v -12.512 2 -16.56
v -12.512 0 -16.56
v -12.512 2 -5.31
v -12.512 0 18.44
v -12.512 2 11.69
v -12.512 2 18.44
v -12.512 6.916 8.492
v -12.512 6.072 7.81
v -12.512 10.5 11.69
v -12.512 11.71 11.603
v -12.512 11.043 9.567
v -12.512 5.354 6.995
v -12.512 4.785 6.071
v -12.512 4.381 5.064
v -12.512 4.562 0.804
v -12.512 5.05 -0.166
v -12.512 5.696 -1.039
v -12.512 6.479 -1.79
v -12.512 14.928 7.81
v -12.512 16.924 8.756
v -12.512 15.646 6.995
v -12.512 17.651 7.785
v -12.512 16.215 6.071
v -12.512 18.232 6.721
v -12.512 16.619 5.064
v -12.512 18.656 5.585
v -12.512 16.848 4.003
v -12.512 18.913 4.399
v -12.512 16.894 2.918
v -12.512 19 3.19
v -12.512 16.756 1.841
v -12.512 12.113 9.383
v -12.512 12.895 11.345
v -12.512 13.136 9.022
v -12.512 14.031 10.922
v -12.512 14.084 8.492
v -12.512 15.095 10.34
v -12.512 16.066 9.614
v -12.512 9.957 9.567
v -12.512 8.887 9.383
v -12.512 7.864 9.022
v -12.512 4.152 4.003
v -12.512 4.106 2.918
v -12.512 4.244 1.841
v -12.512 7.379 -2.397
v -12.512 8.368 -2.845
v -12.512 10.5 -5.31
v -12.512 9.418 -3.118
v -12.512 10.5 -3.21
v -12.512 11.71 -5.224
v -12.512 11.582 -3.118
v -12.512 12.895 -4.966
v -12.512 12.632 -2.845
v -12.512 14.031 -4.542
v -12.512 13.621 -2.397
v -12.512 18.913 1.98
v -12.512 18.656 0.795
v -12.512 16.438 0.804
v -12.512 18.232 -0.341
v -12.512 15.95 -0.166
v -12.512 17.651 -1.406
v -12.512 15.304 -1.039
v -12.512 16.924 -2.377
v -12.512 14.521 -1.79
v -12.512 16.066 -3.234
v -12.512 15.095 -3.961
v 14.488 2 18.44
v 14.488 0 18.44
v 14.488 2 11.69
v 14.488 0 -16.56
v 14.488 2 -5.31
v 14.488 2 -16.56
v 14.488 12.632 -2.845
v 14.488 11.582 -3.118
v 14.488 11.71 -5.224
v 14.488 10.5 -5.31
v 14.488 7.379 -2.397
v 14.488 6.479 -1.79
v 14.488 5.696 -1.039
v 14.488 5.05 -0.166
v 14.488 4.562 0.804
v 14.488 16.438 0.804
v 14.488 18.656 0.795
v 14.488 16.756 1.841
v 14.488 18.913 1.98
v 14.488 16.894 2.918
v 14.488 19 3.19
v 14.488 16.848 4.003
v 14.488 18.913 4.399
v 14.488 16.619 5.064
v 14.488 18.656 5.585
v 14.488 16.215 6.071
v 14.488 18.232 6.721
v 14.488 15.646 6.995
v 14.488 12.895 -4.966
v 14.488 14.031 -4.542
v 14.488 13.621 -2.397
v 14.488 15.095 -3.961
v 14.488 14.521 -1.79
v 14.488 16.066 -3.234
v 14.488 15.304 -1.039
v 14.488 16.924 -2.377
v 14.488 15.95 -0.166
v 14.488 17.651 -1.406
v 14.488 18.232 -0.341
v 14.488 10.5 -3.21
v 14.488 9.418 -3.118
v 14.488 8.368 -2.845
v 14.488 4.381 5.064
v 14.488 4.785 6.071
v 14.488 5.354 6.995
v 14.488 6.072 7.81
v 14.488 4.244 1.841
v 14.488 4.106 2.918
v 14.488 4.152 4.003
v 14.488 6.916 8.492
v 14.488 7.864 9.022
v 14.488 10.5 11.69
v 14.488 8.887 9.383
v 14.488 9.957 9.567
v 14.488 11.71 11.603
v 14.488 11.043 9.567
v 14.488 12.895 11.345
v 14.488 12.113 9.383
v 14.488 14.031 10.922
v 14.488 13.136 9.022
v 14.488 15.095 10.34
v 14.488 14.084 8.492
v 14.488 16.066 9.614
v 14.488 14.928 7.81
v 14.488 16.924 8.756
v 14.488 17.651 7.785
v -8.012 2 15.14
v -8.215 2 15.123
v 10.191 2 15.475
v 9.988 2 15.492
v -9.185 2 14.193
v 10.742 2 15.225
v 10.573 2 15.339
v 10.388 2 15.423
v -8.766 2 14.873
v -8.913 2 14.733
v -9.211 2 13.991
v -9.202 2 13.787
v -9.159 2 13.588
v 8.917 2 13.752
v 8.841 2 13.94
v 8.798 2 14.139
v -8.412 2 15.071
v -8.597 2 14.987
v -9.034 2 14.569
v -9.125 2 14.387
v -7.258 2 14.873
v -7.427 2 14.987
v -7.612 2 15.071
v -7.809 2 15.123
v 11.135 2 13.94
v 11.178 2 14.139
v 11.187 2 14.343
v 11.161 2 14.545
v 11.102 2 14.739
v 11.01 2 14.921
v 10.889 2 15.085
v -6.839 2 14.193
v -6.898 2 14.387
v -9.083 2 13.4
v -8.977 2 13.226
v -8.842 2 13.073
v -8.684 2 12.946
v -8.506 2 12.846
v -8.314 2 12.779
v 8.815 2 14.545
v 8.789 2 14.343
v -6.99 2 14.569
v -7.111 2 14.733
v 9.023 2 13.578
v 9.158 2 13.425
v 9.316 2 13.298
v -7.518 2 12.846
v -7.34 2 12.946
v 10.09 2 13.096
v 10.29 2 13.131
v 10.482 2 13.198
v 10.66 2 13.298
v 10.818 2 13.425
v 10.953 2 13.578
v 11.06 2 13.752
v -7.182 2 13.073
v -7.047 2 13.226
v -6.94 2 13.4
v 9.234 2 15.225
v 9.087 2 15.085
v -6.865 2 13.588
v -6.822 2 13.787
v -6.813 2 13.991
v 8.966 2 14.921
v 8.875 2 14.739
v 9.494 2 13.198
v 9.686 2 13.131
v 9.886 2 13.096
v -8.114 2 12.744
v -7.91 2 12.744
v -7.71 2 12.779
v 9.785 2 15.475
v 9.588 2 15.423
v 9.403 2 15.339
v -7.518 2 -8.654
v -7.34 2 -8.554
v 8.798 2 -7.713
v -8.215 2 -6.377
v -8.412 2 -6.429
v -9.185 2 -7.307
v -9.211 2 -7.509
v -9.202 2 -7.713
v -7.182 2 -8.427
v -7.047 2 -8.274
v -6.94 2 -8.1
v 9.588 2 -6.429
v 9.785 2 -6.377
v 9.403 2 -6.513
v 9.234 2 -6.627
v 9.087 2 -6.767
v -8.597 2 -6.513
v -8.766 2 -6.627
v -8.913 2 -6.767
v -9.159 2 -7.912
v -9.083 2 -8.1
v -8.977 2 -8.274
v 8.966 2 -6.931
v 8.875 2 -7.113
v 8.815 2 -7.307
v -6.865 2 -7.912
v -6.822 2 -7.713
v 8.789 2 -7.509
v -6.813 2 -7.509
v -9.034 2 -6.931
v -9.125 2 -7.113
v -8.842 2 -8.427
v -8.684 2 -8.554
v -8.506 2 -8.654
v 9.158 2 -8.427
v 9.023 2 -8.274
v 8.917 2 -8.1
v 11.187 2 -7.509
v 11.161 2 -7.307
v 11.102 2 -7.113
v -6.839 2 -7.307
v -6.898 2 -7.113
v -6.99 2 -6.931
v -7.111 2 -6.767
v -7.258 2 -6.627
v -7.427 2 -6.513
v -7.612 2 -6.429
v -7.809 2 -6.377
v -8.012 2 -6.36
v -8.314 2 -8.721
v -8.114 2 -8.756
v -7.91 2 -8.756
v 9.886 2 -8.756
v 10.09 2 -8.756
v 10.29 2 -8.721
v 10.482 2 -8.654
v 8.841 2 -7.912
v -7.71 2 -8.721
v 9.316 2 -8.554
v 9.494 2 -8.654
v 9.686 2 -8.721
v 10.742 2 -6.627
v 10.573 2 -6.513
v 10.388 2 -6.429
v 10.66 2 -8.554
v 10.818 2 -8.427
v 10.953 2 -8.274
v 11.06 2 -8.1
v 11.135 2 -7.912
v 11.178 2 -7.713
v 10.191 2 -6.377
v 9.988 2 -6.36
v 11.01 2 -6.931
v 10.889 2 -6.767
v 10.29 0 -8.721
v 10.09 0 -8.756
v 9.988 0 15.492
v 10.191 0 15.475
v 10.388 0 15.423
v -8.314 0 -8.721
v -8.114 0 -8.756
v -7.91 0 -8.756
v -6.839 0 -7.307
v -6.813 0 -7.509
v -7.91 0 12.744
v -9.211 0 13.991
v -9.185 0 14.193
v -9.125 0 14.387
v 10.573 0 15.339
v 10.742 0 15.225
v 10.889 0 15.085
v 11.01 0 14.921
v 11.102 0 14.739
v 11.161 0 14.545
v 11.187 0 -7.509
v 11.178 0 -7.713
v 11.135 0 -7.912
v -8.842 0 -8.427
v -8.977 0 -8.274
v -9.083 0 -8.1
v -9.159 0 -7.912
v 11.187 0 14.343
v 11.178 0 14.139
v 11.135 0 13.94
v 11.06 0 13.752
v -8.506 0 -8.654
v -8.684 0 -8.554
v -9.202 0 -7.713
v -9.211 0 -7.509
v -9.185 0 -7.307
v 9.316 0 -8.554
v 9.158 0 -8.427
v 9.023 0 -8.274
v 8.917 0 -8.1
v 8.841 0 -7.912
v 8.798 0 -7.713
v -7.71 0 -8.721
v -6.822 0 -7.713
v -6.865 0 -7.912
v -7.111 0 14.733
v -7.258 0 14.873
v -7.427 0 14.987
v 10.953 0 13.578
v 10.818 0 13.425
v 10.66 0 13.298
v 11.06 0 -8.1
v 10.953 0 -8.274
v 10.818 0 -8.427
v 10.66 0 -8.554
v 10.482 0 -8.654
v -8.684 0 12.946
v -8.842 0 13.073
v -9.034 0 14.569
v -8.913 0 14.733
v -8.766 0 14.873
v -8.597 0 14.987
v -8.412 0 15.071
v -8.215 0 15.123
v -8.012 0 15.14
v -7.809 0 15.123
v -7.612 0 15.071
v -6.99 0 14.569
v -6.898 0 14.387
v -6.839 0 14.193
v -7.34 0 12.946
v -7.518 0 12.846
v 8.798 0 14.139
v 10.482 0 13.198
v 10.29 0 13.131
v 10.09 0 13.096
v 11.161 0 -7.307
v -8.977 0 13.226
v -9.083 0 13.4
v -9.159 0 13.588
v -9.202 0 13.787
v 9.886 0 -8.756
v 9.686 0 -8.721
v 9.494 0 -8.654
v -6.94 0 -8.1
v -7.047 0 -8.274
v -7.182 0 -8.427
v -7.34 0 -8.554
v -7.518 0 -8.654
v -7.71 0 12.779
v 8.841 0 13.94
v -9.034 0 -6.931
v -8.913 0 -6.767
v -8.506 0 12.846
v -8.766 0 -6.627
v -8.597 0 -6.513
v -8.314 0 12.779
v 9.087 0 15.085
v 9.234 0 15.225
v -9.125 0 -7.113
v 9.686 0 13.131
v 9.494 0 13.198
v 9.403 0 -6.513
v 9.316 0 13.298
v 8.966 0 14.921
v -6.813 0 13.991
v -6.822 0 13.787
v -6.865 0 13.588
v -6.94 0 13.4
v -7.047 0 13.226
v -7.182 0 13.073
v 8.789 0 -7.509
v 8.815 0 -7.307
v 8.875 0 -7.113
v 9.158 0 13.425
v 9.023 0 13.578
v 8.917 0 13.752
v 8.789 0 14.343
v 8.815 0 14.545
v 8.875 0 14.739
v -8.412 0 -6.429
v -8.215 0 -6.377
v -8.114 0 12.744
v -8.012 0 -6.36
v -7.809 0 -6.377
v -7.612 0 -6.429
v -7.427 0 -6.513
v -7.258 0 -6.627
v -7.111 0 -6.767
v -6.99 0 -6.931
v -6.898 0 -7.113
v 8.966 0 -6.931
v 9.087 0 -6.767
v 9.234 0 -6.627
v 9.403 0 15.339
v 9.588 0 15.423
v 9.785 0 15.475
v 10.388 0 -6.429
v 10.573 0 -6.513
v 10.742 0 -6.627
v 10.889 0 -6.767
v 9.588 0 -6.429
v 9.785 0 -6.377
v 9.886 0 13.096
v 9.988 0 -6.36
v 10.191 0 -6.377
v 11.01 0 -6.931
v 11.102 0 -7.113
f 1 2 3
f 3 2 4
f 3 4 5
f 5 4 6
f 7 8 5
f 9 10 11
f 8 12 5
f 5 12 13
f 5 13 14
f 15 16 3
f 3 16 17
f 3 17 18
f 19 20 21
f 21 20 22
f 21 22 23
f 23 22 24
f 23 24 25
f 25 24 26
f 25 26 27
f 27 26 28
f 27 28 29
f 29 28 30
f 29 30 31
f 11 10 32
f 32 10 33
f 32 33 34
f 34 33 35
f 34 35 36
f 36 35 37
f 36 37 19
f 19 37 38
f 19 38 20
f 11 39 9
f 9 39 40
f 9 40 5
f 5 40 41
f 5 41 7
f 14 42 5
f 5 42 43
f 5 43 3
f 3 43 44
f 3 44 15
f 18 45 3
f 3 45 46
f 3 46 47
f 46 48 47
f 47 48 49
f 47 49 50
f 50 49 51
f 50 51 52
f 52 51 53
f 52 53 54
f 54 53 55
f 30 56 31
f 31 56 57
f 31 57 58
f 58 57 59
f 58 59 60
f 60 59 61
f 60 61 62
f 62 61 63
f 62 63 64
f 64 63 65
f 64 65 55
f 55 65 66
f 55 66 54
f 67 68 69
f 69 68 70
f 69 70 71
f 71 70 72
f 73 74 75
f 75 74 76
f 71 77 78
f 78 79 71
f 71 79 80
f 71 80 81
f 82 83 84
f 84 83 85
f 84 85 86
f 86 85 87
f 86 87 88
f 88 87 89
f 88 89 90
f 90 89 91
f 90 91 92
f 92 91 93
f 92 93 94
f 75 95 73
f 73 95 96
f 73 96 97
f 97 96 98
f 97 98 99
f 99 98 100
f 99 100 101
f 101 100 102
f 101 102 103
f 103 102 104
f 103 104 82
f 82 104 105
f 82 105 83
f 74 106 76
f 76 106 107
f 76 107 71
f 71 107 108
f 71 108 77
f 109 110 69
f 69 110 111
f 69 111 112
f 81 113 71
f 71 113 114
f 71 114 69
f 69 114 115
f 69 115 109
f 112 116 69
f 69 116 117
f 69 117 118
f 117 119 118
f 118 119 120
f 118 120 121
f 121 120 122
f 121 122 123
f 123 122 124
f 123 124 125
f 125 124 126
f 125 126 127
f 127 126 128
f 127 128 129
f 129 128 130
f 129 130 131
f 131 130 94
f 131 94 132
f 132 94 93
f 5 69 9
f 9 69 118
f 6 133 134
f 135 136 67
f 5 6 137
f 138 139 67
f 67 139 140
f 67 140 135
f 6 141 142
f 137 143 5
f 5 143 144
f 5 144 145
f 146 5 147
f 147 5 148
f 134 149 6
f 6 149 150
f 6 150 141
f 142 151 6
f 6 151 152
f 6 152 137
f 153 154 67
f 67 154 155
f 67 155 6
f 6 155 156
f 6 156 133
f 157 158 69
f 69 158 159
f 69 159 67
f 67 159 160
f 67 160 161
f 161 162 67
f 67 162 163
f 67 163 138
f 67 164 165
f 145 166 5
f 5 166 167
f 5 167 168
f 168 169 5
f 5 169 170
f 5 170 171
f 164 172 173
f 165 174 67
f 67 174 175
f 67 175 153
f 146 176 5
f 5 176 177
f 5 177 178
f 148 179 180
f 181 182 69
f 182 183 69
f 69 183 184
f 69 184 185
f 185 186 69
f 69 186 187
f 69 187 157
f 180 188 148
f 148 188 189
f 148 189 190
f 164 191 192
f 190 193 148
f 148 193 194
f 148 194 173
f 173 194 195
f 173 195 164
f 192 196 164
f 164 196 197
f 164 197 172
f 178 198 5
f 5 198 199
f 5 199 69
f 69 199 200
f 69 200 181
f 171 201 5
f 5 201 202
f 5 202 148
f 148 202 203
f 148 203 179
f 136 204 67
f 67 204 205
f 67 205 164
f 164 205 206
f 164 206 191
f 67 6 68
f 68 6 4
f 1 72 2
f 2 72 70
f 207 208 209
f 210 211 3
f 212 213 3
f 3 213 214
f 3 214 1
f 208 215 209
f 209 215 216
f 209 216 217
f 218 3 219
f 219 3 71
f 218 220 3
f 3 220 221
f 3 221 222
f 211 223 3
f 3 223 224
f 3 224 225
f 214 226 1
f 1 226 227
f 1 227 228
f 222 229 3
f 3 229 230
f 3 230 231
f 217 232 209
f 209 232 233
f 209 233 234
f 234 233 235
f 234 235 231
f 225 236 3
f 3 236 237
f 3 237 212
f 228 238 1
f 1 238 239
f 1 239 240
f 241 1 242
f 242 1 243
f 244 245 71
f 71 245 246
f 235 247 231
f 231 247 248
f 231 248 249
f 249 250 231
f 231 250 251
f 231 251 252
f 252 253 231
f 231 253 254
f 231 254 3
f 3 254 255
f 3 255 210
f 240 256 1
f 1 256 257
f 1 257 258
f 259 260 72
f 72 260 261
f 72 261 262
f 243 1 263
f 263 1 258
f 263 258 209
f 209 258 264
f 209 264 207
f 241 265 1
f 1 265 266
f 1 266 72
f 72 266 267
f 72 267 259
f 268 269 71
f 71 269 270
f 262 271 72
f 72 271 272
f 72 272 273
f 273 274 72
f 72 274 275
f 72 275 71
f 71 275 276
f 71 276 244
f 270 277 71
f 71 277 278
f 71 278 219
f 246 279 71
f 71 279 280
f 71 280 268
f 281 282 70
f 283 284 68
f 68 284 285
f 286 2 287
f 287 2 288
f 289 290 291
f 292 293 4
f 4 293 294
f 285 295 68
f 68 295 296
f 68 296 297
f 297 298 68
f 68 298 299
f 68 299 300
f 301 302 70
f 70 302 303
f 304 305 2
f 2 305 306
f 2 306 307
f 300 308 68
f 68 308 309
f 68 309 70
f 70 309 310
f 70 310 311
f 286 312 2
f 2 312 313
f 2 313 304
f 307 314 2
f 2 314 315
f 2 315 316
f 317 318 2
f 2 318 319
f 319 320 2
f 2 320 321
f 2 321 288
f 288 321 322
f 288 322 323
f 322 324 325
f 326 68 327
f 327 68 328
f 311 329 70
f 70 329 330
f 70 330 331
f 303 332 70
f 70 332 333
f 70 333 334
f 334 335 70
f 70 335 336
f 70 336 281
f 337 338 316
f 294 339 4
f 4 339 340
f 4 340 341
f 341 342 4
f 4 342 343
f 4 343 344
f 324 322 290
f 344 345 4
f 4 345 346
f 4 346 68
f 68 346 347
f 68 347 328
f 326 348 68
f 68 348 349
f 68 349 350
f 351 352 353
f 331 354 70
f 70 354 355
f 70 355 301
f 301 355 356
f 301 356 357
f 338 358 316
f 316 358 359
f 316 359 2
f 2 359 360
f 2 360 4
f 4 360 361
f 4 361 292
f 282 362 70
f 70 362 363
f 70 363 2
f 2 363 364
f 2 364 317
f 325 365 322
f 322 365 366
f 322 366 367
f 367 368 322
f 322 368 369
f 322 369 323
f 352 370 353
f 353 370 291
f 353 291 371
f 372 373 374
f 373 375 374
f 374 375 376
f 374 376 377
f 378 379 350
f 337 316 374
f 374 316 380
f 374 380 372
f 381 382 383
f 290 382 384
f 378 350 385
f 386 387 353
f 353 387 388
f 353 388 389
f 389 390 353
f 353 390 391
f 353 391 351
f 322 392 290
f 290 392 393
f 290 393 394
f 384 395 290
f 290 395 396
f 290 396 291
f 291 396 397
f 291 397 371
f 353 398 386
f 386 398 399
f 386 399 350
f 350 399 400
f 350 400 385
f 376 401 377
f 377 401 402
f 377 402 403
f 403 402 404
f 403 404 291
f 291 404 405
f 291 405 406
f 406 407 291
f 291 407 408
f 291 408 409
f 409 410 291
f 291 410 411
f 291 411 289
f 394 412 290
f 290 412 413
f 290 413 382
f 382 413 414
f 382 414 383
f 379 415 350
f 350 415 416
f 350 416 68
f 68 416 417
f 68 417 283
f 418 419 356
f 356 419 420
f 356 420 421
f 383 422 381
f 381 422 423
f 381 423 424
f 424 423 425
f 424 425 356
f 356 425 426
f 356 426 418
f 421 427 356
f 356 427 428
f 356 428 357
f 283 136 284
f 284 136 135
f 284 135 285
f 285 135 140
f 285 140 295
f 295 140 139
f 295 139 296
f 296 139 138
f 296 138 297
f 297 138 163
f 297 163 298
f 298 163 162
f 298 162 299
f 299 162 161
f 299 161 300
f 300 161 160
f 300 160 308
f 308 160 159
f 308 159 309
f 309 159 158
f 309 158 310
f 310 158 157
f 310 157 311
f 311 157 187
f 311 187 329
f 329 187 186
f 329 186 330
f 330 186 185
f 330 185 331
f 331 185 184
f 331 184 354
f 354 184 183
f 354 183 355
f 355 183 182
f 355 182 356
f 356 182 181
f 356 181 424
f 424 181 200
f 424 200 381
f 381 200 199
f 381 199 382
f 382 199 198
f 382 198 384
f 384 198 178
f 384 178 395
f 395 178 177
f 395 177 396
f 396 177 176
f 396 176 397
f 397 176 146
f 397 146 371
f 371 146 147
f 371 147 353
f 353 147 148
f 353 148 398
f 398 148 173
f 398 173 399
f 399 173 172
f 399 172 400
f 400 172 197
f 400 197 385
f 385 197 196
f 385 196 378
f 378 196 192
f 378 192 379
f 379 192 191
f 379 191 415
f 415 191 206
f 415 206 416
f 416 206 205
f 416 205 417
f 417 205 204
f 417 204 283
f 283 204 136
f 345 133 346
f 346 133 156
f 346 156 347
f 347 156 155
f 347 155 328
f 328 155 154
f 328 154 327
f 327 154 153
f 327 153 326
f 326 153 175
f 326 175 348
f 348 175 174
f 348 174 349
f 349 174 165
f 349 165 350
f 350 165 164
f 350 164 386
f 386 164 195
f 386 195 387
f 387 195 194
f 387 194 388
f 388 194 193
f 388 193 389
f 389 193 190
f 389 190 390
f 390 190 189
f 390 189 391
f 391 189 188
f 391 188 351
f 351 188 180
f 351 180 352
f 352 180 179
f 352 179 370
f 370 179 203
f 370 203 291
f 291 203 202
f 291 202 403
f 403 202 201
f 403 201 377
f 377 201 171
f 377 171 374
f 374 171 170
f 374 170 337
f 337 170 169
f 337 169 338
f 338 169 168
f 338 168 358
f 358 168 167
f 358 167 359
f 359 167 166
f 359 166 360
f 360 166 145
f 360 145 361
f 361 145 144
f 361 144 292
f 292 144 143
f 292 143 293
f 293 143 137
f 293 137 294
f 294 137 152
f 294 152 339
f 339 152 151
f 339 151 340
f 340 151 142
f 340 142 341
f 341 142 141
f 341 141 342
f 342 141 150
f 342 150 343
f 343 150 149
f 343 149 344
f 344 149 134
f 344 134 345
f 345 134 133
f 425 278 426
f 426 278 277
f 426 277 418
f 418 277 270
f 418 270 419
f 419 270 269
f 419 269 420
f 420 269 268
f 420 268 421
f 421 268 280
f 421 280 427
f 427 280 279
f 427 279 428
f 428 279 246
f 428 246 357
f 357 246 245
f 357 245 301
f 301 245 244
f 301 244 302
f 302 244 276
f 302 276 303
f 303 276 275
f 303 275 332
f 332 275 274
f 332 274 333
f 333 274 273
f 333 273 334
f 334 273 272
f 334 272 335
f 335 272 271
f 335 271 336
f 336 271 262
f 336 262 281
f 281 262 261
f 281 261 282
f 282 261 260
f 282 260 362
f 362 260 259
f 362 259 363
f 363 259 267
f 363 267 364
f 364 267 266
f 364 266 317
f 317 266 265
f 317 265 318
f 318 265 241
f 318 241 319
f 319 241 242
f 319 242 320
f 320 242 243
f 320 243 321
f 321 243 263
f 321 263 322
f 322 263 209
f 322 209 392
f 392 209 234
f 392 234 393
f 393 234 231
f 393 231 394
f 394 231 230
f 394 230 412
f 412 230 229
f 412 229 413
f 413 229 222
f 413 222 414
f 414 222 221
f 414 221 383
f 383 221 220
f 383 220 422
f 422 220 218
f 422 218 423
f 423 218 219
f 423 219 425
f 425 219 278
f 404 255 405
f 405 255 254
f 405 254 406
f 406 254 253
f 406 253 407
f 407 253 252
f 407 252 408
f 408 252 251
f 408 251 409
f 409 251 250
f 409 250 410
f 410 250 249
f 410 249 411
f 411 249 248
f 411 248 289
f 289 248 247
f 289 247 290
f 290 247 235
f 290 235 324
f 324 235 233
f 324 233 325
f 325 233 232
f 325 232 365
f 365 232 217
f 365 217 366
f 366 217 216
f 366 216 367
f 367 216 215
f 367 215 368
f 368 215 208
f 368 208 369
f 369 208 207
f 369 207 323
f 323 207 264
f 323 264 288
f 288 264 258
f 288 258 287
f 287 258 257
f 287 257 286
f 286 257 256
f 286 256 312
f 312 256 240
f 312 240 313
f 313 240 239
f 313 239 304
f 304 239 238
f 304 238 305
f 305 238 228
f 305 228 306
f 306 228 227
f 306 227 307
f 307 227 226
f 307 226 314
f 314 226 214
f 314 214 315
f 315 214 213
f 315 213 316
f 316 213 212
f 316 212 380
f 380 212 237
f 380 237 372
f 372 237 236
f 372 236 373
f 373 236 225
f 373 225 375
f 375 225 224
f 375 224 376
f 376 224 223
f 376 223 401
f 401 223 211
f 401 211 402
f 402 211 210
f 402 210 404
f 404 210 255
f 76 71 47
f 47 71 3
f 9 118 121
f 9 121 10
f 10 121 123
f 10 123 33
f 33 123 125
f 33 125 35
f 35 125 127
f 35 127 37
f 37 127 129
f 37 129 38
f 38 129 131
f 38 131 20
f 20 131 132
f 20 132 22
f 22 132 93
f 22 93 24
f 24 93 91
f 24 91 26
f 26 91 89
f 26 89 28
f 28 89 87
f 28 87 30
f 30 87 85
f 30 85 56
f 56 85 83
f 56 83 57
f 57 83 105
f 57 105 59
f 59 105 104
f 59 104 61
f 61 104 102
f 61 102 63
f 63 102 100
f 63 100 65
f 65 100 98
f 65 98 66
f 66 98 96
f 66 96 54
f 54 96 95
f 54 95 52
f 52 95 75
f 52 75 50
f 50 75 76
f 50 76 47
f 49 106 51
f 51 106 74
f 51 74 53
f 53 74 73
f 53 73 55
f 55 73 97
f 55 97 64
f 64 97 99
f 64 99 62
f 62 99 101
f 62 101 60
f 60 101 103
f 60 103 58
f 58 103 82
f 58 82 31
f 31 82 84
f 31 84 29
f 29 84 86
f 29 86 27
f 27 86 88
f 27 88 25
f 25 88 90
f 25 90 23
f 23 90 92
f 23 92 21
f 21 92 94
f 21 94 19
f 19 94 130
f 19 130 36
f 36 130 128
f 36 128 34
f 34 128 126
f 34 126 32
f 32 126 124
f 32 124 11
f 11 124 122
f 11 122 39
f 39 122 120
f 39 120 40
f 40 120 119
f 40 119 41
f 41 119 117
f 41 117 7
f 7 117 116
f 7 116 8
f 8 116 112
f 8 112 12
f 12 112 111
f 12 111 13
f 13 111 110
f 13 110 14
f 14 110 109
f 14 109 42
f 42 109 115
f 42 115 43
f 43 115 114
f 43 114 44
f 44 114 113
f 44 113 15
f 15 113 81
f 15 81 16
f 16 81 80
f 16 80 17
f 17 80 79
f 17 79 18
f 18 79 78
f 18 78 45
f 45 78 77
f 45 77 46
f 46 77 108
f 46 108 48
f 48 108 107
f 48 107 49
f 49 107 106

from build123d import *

# Parameters (mm, degrees)
SKETCH1_W            = 27
SKETCH1_H            = 35
SKETCH1_R            = 1.113712744
SKETCH1_R_2          = 1.000106258
SKETCH1_R_3          = 1.174626552
SKETCH1_R_4          = 1.19920455
SKETCH1_W_2          = 8.3
SKETCH1_H_2          = 2.12
BOSS_EXTRUDE1_DEPTH  = 2
M2_CLEARANCE_HOLE2_D = 2.4
SKETCH13_W           = 27
SKETCH13_H           = 17
BOSS_EXTRUDE6_DEPTH  = 17
SKETCH14_R           = 6.4
CUT_EXTRUDE3_DEPTH   = 38.815687555


with BuildPart() as part:
    # Sketch1 → Boss-Extrude1 (new body)
    # profile 1 of 8: a face of its own
    with BuildSketch(Plane(origin=(0, 0, 0), x_dir=(1, 0, 0), z_dir=(0, 1, 0))):
        with Locations((0.988085162, -0.939800033)):
            Rectangle(SKETCH1_W, SKETCH1_H)
        Polygon((-10.011914838, -15.939800033), (-10.011914838, 14.060199967), (11.988085162, 14.060199967), (11.988085162, -15.939800033), (5.138085162, -15.939800033), (5.138085162, -18.059800033), (-3.161914838, -18.059800033), (-3.161914838, -15.939800033), align=None, mode=Mode.SUBTRACT)
    # profile 2 of 8: a face of its own
    with BuildSketch(Plane(origin=(0, 0, 0), x_dir=(1, 0, 0), z_dir=(0, 1, 0))):
        Polygon((11.988085162, 14.060199967), (-10.011914838, 14.060199967), (-10.011914838, -15.939800033), (-3.161914838, -15.939800033), (-3.161914838, -13.819800033), (5.138085162, -13.819800033), (5.138085162, -15.939800033), (11.988085162, -15.939800033), align=None)
        with Locations((-8.011914838, -13.939800033)):
            Circle(SKETCH1_R, mode=Mode.SUBTRACT)
        with Locations((9.988085162, -14.291814947)):
            Circle(SKETCH1_R_2, mode=Mode.SUBTRACT)
        with Locations((-8.011914838, 7.560199967)):
            Circle(SKETCH1_R_3, mode=Mode.SUBTRACT)
        with Locations((9.988085162, 7.560199967)):
            Circle(SKETCH1_R_4, mode=Mode.SUBTRACT)
    # profile 3 of 8: a face of its own
    with BuildSketch(Plane(origin=(0, 0, 0), x_dir=(1, 0, 0), z_dir=(0, 1, 0))):
        with Locations((-8.011914838, 7.560199967)):
            Circle(SKETCH1_R_3)
    # profile 4 of 8: a face of its own
    with BuildSketch(Plane(origin=(0, 0, 0), x_dir=(1, 0, 0), z_dir=(0, 1, 0))):
        with Locations((9.988085162, 7.560199967)):
            Circle(SKETCH1_R_4)
    # profile 5 of 8: a face of its own
    with BuildSketch(Plane(origin=(0, 0, 0), x_dir=(1, 0, 0), z_dir=(0, 1, 0))):
        with Locations((9.988085162, -14.291814947)):
            Circle(SKETCH1_R_2)
    # profile 6 of 8: a face of its own
    with BuildSketch(Plane(origin=(0, 0, 0), x_dir=(1, 0, 0), z_dir=(0, 1, 0))):
        with Locations((0.988085162, -16.999800033)):
            Rectangle(SKETCH1_W_2, SKETCH1_H_2)
    # profile 7 of 8: a face of its own
    with BuildSketch(Plane(origin=(0, 0, 0), x_dir=(1, 0, 0), z_dir=(0, 1, 0))):
        with Locations((0.988085162, -14.879800033)):
            Rectangle(SKETCH1_W_2, SKETCH1_H_2)
    # profile 8 of 8: a face of its own
    with BuildSketch(Plane(origin=(0, 0, 0), x_dir=(1, 0, 0), z_dir=(0, 1, 0))):
        with Locations((-8.011914838, -13.939800033)):
            Circle(SKETCH1_R)
    extrude(amount=BOSS_EXTRUDE1_DEPTH)

    # M2 Clearance Hole2 (through all)
    with Locations(Plane(origin=(0, 2, 0), x_dir=(1, 0, 0), z_dir=(0, 1, 0))):
        with Locations((-8.011914838, 7.560199967), (9.988085162, 7.560199967), (-8.011914838, -13.939800033), (9.988085162, -14.291814947)):
            Hole(M2_CLEARANCE_HOLE2_D / 2)

    # Sketch13 → Boss-Extrude6 (add)
    with BuildSketch(Plane(origin=(0, 2, 0), x_dir=(1, 0, 0), z_dir=(0, 1, 0))):
        with Locations((0.988085162, -3.189800033)):
            Rectangle(SKETCH13_W, SKETCH13_H)
    extrude(amount=BOSS_EXTRUDE6_DEPTH)

    # Sketch14 → Cut-Extrude3 (cut, through all)
    with BuildSketch(Plane(origin=(14.488085162, 0, 0), x_dir=(0, 0, -1), z_dir=(1, 0, 0))):
        with Locations((-3.189800033, 10.5)):
            Circle(SKETCH14_R)
        with BuildLine():
            Line((5.310199967, 19), (-3.189800009, 19))
            ThreePointArc((-3.189800009, 19), (2.820607616, 16.510407631), (5.310199967, 10.5))
            Line((5.310199967, 10.5), (5.310199967, 19))
        make_face()
        with BuildLine():
            Line((-3.189800009, 19), (-11.689800033, 19))
            Line((-11.689800033, 19), (-11.689800033, 10.50000002))
            ThreePointArc((-11.689800033, 10.50000002), (-9.200207658, 16.510407656), (-3.189800009, 19))
        make_face()
    extrude(amount=-CUT_EXTRUDE3_DEPTH, mode=Mode.SUBTRACT)


solid = part.part
